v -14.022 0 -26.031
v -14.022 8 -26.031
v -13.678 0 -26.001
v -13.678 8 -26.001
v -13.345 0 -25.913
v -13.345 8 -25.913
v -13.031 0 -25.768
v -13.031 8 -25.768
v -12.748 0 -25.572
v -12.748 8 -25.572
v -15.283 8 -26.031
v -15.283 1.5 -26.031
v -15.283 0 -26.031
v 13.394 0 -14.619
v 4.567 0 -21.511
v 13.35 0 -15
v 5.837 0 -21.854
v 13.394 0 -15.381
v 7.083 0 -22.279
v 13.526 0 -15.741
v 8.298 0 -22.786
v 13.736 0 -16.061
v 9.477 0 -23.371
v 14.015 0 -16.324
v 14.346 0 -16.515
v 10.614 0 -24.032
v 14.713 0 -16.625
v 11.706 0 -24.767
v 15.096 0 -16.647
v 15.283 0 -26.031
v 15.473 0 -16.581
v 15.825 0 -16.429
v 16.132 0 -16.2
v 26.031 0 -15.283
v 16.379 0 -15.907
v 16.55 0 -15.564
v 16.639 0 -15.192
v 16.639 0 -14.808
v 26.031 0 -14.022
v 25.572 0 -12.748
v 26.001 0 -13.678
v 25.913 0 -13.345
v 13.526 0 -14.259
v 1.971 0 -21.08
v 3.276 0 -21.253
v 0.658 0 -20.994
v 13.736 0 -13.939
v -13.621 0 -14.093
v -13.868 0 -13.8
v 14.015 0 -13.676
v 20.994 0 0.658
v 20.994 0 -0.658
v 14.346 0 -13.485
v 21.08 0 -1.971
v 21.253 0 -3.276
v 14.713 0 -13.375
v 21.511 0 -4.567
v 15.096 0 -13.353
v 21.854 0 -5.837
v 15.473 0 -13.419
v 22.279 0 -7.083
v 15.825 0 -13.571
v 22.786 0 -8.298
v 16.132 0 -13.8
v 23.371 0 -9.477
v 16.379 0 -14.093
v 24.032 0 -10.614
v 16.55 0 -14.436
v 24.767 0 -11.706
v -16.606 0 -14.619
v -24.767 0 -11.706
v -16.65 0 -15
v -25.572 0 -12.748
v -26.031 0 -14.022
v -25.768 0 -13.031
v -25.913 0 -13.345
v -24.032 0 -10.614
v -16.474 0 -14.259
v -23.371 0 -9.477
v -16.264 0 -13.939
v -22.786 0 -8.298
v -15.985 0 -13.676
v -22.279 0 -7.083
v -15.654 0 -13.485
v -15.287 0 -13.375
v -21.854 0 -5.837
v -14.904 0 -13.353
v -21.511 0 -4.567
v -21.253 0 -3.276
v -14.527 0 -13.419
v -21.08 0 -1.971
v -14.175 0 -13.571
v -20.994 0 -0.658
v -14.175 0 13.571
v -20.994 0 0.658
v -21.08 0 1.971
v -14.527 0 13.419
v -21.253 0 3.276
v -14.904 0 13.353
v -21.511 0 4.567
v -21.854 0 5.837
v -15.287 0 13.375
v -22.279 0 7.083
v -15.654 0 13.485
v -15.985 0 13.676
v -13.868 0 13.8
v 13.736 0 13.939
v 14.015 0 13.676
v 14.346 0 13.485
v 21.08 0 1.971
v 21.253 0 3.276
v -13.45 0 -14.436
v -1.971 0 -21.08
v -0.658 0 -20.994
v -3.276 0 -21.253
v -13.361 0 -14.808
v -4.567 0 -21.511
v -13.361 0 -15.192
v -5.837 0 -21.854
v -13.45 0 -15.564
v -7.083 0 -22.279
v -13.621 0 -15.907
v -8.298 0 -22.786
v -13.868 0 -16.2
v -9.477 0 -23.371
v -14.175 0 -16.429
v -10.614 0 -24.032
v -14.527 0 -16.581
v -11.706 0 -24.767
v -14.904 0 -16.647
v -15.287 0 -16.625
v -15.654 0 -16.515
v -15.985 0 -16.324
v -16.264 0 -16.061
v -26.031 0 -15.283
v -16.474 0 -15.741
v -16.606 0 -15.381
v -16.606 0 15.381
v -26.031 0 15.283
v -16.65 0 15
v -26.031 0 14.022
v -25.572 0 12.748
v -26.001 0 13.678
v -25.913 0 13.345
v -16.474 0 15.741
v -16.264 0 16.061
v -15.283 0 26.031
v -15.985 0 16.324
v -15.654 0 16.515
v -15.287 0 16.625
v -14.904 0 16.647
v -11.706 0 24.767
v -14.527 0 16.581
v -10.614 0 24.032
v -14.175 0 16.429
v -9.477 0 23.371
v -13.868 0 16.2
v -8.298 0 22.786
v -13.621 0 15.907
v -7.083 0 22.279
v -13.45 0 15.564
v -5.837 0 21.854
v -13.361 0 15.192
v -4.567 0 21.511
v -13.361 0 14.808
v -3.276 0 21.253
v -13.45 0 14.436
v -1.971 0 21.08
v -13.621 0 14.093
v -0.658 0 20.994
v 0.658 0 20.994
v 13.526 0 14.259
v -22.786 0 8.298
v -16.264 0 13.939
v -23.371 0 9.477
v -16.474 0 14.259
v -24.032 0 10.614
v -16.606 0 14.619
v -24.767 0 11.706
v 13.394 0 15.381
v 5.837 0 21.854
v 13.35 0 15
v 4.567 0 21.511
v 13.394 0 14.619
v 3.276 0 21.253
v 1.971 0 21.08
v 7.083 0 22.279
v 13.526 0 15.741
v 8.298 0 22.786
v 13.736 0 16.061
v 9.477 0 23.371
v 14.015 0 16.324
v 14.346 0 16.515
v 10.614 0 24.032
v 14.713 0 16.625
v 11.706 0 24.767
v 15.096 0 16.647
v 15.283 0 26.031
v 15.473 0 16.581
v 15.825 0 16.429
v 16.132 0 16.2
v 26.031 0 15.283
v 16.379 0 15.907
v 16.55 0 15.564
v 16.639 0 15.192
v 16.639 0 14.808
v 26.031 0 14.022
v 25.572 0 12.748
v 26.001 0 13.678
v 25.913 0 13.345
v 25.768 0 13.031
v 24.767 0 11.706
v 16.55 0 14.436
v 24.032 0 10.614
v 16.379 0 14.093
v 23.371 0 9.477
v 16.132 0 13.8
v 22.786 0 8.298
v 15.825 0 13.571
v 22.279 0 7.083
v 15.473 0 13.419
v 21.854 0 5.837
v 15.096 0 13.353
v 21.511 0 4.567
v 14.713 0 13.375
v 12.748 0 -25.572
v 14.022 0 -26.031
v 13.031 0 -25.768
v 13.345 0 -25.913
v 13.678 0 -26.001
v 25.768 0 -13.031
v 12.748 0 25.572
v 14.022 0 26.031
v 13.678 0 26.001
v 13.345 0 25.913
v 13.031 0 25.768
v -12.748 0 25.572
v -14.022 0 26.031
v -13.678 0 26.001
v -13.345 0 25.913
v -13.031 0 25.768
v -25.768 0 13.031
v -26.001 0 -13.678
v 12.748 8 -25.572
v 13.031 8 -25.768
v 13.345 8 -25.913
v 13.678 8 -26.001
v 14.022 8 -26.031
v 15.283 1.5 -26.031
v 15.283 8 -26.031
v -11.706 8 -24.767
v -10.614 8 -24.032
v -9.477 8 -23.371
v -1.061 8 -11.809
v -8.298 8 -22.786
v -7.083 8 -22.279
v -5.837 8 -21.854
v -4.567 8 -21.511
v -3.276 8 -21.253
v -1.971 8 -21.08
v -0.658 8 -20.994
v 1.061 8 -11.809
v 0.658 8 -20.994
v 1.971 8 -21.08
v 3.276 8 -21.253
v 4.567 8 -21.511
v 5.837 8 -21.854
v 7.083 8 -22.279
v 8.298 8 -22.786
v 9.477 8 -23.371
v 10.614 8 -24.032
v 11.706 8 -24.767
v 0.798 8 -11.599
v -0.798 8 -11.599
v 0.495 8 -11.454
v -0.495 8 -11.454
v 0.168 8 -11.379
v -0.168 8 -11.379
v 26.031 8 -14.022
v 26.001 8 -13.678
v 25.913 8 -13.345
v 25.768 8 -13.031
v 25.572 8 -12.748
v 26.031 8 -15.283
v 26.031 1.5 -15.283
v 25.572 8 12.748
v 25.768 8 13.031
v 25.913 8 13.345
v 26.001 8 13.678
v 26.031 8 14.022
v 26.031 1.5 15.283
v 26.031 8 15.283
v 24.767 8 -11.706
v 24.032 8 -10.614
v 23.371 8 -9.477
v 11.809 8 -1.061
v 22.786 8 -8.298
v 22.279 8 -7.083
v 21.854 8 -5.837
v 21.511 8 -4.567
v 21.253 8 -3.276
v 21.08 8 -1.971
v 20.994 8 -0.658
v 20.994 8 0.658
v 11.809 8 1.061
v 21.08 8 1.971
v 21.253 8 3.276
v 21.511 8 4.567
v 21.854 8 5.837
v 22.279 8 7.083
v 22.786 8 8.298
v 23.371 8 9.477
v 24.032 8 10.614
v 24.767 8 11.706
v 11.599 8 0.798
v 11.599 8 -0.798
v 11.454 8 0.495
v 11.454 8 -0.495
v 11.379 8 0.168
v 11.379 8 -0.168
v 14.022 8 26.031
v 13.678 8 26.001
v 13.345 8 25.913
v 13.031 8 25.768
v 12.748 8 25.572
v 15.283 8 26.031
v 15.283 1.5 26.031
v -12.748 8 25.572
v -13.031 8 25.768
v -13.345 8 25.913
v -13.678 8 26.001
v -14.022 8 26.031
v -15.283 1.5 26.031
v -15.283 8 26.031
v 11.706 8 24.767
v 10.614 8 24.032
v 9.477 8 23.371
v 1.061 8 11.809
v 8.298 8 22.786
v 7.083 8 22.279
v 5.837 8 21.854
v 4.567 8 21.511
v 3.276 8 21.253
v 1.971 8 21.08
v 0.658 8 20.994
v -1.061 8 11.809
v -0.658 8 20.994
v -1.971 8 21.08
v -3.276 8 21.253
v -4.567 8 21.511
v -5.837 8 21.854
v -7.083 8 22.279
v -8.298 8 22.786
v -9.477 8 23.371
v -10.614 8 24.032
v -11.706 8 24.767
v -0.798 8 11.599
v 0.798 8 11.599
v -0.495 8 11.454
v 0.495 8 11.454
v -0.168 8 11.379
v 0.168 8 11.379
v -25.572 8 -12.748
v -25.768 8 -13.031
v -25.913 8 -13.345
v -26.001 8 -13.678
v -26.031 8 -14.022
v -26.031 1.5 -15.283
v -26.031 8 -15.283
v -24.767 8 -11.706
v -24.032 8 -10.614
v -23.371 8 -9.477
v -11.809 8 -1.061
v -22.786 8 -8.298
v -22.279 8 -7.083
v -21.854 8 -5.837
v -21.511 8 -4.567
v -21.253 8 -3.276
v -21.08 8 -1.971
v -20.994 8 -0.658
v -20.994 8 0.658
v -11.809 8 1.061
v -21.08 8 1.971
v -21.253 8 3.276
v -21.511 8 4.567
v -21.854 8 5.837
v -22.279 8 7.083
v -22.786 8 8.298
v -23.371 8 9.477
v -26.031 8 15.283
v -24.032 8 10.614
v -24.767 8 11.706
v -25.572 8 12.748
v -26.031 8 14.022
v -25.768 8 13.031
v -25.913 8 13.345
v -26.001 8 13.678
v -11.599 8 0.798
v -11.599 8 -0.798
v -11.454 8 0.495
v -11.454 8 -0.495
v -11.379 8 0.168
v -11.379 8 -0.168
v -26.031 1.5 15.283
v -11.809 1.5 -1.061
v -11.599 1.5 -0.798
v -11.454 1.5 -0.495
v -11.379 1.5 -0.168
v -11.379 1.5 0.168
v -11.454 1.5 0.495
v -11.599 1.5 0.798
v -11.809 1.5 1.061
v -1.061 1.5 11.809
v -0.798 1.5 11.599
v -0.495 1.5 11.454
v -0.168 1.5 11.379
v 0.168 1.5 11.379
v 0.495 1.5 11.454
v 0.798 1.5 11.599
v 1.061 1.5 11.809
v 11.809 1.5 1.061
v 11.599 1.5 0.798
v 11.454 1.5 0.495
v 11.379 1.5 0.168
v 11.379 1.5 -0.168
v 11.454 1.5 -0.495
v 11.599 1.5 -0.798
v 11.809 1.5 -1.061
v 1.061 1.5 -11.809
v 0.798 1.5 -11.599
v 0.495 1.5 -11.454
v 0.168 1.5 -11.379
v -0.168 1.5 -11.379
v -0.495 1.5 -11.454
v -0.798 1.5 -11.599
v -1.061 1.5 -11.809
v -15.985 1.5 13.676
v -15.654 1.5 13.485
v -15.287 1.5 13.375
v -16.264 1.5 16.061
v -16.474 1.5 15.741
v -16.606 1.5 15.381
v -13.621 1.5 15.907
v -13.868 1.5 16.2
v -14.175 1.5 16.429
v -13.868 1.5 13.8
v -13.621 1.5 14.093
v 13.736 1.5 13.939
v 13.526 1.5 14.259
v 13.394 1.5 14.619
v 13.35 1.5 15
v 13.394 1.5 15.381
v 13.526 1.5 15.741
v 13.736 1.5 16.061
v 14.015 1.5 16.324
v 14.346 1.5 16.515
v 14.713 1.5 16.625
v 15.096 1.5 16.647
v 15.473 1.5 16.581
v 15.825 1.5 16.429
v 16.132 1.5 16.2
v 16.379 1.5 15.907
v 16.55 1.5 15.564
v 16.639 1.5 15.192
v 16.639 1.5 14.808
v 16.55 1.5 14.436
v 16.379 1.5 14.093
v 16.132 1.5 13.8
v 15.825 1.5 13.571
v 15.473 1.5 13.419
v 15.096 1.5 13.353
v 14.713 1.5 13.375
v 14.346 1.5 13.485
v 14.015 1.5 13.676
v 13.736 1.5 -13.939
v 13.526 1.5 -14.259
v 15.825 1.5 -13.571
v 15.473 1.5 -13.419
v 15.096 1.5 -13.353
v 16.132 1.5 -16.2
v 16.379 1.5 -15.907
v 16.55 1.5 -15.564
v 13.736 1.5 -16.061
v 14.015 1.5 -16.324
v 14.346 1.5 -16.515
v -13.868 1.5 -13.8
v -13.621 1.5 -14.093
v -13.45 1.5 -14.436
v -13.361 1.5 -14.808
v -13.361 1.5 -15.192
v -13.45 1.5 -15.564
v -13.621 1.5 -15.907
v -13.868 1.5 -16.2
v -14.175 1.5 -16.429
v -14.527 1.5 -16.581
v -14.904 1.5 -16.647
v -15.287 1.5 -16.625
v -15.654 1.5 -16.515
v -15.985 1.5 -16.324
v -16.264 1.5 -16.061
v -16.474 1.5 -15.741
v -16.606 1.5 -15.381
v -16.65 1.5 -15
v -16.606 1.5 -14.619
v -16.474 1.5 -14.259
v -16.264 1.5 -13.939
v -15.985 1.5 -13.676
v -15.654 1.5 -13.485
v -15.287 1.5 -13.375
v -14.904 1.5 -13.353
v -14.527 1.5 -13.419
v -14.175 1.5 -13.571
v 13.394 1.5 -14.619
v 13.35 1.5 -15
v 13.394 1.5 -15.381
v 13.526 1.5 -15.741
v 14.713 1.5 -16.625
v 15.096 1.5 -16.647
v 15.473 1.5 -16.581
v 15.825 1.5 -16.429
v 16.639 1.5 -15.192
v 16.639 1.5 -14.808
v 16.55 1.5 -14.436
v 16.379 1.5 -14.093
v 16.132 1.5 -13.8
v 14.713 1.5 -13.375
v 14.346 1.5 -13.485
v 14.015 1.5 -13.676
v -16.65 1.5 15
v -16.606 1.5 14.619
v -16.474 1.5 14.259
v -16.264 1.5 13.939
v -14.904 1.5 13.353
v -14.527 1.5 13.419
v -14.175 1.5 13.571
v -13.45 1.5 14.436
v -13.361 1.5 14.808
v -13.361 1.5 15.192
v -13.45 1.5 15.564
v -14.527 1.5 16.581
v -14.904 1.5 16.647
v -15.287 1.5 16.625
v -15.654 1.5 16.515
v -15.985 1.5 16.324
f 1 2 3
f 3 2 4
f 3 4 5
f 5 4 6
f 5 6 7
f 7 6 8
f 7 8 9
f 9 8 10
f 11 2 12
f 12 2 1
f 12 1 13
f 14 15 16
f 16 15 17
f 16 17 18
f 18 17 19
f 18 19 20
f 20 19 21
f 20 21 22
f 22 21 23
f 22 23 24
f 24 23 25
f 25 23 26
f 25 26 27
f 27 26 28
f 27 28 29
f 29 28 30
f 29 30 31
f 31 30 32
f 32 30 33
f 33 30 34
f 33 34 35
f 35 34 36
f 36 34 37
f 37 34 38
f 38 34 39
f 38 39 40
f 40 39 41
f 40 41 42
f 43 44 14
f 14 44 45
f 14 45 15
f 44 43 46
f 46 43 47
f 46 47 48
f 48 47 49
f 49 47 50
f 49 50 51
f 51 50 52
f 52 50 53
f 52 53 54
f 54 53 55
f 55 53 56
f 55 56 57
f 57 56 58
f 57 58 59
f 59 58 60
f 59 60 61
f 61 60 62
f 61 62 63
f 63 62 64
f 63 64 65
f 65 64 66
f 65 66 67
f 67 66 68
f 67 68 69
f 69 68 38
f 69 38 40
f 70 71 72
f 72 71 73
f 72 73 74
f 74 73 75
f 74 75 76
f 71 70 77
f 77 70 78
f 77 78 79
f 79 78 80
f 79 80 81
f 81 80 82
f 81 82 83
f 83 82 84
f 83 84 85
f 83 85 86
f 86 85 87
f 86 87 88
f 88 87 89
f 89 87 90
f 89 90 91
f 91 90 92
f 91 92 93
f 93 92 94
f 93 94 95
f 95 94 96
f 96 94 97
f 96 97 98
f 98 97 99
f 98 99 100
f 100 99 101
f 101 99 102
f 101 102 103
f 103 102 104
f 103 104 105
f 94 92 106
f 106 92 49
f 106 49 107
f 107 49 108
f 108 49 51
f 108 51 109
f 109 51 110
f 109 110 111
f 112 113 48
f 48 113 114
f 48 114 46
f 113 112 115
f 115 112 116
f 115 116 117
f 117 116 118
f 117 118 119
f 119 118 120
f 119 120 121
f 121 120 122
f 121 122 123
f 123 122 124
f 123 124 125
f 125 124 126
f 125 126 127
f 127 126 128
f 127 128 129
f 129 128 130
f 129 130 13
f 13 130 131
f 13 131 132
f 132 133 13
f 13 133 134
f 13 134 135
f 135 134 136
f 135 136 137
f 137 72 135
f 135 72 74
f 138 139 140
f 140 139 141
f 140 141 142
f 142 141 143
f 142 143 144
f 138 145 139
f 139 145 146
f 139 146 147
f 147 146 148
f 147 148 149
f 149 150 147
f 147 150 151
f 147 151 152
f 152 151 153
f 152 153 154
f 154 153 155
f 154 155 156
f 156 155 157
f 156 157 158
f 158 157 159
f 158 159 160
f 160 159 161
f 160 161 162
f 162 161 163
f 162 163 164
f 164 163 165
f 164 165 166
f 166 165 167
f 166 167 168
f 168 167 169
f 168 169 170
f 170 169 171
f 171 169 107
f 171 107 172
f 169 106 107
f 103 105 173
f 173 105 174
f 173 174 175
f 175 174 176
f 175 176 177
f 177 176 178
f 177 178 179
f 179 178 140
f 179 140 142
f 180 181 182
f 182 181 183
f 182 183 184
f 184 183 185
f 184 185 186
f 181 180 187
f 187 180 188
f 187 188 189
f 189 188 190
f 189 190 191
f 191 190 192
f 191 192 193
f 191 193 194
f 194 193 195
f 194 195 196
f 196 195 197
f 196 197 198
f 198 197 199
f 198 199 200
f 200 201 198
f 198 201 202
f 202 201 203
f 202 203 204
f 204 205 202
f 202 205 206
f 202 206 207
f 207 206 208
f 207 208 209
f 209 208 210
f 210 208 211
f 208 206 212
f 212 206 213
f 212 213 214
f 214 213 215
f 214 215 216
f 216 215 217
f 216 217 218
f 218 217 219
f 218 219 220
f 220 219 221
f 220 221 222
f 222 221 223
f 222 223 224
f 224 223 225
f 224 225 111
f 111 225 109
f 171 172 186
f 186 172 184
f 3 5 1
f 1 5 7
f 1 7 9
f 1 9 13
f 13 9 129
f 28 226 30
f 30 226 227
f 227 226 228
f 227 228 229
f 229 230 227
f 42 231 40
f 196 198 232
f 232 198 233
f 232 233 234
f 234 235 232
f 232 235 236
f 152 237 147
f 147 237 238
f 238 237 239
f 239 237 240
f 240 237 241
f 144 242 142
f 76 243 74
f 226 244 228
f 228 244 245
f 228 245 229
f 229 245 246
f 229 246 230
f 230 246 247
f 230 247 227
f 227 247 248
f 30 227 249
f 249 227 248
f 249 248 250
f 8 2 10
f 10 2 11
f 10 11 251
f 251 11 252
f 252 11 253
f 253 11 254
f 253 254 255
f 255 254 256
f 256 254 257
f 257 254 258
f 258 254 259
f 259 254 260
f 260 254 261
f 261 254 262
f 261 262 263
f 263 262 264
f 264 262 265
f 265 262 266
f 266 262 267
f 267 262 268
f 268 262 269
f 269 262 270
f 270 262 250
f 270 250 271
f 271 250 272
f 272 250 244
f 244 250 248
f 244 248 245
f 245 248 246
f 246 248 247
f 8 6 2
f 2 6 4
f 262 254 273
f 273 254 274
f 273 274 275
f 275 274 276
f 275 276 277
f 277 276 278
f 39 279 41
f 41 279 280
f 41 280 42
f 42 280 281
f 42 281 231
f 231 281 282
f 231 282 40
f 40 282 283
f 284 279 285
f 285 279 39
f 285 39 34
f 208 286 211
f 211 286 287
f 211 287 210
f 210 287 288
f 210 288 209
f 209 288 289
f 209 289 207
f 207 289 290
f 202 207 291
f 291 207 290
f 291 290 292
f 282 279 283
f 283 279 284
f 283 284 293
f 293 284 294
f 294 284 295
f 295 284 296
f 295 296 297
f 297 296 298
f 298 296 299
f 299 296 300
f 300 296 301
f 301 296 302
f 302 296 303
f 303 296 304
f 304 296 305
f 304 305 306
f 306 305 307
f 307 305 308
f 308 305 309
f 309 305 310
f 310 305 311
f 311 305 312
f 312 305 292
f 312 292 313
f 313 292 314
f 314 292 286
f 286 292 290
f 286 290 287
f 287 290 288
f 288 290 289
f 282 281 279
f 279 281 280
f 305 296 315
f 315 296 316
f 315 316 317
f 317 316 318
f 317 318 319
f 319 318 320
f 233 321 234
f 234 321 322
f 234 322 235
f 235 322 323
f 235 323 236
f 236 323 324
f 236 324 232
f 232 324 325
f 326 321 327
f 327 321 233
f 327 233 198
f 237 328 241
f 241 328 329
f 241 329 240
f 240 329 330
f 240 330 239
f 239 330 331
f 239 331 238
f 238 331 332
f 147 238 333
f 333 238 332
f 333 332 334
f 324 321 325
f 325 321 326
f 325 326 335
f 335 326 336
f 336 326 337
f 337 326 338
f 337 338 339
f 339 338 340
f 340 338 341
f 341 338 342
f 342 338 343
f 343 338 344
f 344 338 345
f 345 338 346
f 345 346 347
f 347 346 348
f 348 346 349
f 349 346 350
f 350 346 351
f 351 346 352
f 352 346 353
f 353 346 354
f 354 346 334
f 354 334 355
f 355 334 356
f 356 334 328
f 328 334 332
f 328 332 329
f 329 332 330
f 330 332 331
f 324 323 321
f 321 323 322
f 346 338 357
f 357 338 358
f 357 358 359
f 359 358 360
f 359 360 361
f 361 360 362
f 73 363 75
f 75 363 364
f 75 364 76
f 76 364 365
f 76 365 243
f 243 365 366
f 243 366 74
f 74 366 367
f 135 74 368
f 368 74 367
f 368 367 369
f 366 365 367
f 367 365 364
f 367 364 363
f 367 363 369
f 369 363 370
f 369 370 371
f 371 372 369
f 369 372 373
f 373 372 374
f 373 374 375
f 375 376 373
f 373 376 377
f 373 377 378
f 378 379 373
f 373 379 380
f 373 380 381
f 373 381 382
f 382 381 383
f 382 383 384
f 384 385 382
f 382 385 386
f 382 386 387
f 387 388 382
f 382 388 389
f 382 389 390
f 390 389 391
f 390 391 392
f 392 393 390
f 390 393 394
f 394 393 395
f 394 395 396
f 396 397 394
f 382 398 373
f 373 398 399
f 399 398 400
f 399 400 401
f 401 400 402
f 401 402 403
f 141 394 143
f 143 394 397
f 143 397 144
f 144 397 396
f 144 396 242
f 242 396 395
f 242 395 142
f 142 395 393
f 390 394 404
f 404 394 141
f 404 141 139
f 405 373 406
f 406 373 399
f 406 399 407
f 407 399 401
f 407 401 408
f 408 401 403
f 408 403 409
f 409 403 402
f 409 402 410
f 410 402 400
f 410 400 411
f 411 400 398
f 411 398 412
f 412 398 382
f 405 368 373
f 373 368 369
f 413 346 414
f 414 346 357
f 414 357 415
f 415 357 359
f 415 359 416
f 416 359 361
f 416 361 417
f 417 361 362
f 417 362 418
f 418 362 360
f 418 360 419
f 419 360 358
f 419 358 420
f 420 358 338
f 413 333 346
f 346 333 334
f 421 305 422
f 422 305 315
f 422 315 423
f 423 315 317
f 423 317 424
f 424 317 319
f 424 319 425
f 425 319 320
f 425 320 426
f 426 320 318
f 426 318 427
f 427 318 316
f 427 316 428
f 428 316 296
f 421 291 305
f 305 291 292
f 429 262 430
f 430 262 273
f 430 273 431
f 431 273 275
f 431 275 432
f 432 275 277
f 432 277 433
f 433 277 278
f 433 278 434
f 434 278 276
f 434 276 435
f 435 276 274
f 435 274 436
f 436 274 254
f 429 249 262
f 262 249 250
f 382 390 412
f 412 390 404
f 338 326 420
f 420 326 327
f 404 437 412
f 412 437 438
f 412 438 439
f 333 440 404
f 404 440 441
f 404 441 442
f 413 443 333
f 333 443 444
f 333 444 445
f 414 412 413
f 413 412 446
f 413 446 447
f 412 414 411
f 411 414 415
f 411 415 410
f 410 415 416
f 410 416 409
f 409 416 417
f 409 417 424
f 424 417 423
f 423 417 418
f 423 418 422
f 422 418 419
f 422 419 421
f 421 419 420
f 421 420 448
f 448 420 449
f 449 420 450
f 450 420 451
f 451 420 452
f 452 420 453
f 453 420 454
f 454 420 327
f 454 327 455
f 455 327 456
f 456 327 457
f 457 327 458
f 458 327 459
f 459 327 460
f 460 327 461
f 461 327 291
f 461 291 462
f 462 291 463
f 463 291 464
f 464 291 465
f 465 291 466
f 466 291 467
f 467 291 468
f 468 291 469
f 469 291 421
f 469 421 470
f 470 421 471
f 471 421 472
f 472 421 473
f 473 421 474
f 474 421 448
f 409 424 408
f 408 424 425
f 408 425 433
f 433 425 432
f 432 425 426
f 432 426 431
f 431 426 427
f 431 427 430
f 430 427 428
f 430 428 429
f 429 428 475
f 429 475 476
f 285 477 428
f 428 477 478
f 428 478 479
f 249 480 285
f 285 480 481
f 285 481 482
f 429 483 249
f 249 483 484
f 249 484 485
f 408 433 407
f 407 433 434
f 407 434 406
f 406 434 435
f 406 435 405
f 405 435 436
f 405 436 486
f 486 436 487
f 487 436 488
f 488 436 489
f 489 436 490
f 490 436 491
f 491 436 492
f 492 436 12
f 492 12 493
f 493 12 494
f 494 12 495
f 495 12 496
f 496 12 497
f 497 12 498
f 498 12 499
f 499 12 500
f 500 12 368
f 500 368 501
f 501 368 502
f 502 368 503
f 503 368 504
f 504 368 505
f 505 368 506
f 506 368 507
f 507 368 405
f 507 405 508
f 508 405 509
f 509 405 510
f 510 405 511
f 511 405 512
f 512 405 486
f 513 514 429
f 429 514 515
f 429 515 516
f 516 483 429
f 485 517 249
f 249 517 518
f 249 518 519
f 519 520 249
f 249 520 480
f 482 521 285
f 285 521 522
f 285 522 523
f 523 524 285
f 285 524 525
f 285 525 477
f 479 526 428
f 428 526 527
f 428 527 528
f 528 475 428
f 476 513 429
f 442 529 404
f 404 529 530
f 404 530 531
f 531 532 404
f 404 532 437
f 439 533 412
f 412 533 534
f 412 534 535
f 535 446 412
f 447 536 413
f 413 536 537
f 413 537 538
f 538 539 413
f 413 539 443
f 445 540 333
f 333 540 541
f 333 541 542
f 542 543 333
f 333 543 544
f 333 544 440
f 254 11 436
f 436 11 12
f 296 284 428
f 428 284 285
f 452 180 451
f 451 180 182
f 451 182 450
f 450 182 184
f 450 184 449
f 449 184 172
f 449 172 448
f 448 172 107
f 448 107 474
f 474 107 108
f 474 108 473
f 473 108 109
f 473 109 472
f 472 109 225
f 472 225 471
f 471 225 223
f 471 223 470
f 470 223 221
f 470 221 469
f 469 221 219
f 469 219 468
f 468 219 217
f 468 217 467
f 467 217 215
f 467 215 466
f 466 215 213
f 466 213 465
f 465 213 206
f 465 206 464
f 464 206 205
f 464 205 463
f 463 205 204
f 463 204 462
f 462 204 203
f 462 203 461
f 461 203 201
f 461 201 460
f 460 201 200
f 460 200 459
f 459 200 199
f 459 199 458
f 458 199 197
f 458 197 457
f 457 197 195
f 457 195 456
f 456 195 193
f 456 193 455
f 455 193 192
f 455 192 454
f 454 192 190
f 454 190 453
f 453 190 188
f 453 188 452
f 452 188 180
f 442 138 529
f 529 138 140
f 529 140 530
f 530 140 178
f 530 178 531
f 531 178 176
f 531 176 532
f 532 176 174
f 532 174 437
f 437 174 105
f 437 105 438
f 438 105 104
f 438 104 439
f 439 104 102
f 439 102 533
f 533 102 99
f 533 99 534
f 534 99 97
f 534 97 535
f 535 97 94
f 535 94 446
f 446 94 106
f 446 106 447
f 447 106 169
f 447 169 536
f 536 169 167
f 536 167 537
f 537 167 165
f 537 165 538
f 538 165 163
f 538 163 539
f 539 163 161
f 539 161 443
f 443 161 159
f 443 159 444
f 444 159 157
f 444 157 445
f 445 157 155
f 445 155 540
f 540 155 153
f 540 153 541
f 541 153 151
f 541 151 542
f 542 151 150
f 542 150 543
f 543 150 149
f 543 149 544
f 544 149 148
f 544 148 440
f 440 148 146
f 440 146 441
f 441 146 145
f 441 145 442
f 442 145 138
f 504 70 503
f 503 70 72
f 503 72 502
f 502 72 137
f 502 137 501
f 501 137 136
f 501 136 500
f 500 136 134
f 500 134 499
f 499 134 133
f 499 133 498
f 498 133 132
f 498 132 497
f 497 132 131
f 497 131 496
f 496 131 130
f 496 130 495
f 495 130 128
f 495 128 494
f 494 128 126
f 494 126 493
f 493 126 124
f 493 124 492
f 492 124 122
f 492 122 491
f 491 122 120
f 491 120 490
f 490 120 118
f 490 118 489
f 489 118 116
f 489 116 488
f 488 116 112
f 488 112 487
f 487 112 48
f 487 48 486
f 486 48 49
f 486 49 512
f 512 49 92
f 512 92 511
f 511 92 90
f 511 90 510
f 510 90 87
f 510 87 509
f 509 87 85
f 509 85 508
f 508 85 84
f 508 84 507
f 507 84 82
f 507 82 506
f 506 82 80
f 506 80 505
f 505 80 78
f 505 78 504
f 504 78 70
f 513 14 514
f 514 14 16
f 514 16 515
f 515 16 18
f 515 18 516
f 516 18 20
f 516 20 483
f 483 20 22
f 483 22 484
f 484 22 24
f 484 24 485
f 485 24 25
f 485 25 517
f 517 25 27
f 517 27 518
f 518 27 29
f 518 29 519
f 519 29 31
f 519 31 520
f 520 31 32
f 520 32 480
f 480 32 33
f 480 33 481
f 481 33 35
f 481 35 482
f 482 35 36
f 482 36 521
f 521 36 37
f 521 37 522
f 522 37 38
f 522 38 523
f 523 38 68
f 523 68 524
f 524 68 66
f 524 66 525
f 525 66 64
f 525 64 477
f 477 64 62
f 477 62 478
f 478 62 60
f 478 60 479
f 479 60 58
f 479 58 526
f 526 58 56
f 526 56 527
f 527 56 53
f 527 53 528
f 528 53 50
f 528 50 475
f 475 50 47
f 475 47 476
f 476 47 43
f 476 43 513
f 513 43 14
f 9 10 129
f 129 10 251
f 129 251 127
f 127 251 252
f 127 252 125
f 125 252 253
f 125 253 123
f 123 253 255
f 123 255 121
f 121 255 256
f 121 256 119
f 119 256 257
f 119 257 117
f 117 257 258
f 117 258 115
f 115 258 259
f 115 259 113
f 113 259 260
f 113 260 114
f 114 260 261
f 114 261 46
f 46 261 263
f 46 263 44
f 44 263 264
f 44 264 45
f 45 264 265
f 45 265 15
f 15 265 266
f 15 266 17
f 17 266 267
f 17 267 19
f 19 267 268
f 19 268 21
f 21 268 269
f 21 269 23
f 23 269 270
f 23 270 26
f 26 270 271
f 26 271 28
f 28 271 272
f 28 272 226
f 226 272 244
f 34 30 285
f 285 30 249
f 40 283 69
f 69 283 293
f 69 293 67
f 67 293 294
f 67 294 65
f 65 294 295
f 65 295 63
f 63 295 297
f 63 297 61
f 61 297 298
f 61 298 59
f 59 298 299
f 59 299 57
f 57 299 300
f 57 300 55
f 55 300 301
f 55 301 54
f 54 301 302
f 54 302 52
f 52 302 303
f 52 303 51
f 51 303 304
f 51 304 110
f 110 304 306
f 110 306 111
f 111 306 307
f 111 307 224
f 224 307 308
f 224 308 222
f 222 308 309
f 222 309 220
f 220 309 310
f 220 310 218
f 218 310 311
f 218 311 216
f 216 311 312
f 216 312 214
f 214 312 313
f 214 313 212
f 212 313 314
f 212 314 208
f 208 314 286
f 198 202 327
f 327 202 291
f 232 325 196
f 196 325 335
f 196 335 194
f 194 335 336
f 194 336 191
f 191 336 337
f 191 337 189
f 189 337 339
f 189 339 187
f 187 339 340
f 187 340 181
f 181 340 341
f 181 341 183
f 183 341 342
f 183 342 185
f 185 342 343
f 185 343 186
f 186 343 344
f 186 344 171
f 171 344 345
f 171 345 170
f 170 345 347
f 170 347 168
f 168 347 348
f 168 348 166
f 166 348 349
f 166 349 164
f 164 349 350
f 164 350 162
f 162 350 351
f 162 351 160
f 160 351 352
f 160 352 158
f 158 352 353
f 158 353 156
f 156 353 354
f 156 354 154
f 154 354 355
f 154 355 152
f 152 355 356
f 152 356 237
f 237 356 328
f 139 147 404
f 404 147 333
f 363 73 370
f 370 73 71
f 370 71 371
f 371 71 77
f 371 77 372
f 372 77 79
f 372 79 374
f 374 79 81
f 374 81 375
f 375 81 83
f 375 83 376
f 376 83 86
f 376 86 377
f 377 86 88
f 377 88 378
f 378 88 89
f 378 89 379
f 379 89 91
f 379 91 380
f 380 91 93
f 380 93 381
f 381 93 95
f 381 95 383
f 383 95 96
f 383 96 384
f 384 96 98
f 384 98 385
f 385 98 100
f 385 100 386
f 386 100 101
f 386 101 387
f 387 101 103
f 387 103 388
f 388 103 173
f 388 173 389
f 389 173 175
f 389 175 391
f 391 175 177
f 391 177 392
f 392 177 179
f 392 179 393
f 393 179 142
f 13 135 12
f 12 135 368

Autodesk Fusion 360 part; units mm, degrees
sketch "Skizze1" plane through (0, 0, 0) normal (0, 1, 0) x (1, 0, 0)
  line L0 (-26.0309, 15.2828) -> (-26.0309, -15.2828)
  line L1 (-26.0309, -15.2828) -> (-15.2828, -26.0309)
  line L2 (-15.2828, -26.0309) -> (15.2828, -26.0309)
  line L3 (15.2828, -26.0309) -> (26.0309, -15.2828)
  line L4 (26.0309, -15.2828) -> (26.0309, 15.2828)
  line L5 (26.0309, 15.2828) -> (15.2828, 26.0309)
  line L6 (15.2828, 26.0309) -> (-15.2828, 26.0309)
  line L7 (-15.2828, 26.0309) -> (-26.0309, 15.2828)
  circle A0 centre (-15, 15) radius 1.65
  line L8 (0, 26.0309) -> (0, -26.0309) construction
  line L9 (-26.0309, 0) -> (26.0309, 0) construction
  circle A1 centre (15, 15) radius 1.65
  circle A2 centre (15, -15) radius 1.65
  circle A3 centre (-15, -15) radius 1.65
  line L10 (-26.0309, 15.2828) -> (-10.748, 0)
  line L11 (-10.748, 0) -> (-26.0309, -15.2828)
  line L12 (-15.2828, 26.0309) -> (0, 10.748)
  line L13 (0, 10.748) -> (15.2828, 26.0309)
  line L14 (26.0309, 15.2828) -> (10.748, 0)
  line L15 (10.748, 0) -> (26.0309, -15.2828)
  line L16 (15.2828, -26.0309) -> (0, -10.748)
  line L17 (-15.2828, -26.0309) -> (0, -10.748)
  arc A4 (-26.0309, -13.2828) -> (-26.0309, 13.2828) centre (-40.983, 0) ccw
  arc A5 (13.2828, -26.0309) -> (-13.2828, -26.0309) centre (0, -40.983) ccw
  arc A6 (26.0309, 13.2828) -> (26.0309, -13.2828) centre (40.983, 0) ccw
  arc A7 (-13.2828, 26.0309) -> (13.2828, 26.0309) centre (0, 40.983) ccw
  dimension "d1" = 15.2
  dimension "d2" = 3.3
  dimension "d3" = 8
  dimension "d4" = 15
  dimension "d5" = 15
  dimension "d6" = 45
  dimension "d7" = 2
  dimension "d8" = 2
  dimension "d10" = 20
  dimension "d12" = 360
extrude "Extrusion1" add sketch "Skizze1" along normal blind 1.5 contours L0 L10 L11 A4 | L1 L3 L5 L7 L10 L11 L12 L13 L14 L15 L16 L17 | L6 L12 L13 A7 | L2 L16 L17 A5 | L4 L14 L15 A6
extrude "Extrusion2" add sketch "Skizze1" along normal blind 8 contours L0 L10 L11 A4 | L6 L12 L13 A7 | L2 L16 L17 A5 | L4 L14 L15 A6
fillet "Abrundung1" radius 1.5 4 edges at (0, 4.75, -10.748) (10.748, 4.75, 0) (0, 4.75, 10.748) (-10.748, 4.75, 0)
fillet "Abrundung3" radius 2 8 edges at (-26.0309, 4, 13.2828) (-26.0309, 4, -13.2828) (-13.2828, 4, 26.0309) (13.2828, 4, 26.0309) (26.0309, 4, 13.2828) (26.0309, 4, -13.2828) (13.2828, 4, -26.0309) (-13.2828, 4, -26.0309)
equation "d8 = d7"
